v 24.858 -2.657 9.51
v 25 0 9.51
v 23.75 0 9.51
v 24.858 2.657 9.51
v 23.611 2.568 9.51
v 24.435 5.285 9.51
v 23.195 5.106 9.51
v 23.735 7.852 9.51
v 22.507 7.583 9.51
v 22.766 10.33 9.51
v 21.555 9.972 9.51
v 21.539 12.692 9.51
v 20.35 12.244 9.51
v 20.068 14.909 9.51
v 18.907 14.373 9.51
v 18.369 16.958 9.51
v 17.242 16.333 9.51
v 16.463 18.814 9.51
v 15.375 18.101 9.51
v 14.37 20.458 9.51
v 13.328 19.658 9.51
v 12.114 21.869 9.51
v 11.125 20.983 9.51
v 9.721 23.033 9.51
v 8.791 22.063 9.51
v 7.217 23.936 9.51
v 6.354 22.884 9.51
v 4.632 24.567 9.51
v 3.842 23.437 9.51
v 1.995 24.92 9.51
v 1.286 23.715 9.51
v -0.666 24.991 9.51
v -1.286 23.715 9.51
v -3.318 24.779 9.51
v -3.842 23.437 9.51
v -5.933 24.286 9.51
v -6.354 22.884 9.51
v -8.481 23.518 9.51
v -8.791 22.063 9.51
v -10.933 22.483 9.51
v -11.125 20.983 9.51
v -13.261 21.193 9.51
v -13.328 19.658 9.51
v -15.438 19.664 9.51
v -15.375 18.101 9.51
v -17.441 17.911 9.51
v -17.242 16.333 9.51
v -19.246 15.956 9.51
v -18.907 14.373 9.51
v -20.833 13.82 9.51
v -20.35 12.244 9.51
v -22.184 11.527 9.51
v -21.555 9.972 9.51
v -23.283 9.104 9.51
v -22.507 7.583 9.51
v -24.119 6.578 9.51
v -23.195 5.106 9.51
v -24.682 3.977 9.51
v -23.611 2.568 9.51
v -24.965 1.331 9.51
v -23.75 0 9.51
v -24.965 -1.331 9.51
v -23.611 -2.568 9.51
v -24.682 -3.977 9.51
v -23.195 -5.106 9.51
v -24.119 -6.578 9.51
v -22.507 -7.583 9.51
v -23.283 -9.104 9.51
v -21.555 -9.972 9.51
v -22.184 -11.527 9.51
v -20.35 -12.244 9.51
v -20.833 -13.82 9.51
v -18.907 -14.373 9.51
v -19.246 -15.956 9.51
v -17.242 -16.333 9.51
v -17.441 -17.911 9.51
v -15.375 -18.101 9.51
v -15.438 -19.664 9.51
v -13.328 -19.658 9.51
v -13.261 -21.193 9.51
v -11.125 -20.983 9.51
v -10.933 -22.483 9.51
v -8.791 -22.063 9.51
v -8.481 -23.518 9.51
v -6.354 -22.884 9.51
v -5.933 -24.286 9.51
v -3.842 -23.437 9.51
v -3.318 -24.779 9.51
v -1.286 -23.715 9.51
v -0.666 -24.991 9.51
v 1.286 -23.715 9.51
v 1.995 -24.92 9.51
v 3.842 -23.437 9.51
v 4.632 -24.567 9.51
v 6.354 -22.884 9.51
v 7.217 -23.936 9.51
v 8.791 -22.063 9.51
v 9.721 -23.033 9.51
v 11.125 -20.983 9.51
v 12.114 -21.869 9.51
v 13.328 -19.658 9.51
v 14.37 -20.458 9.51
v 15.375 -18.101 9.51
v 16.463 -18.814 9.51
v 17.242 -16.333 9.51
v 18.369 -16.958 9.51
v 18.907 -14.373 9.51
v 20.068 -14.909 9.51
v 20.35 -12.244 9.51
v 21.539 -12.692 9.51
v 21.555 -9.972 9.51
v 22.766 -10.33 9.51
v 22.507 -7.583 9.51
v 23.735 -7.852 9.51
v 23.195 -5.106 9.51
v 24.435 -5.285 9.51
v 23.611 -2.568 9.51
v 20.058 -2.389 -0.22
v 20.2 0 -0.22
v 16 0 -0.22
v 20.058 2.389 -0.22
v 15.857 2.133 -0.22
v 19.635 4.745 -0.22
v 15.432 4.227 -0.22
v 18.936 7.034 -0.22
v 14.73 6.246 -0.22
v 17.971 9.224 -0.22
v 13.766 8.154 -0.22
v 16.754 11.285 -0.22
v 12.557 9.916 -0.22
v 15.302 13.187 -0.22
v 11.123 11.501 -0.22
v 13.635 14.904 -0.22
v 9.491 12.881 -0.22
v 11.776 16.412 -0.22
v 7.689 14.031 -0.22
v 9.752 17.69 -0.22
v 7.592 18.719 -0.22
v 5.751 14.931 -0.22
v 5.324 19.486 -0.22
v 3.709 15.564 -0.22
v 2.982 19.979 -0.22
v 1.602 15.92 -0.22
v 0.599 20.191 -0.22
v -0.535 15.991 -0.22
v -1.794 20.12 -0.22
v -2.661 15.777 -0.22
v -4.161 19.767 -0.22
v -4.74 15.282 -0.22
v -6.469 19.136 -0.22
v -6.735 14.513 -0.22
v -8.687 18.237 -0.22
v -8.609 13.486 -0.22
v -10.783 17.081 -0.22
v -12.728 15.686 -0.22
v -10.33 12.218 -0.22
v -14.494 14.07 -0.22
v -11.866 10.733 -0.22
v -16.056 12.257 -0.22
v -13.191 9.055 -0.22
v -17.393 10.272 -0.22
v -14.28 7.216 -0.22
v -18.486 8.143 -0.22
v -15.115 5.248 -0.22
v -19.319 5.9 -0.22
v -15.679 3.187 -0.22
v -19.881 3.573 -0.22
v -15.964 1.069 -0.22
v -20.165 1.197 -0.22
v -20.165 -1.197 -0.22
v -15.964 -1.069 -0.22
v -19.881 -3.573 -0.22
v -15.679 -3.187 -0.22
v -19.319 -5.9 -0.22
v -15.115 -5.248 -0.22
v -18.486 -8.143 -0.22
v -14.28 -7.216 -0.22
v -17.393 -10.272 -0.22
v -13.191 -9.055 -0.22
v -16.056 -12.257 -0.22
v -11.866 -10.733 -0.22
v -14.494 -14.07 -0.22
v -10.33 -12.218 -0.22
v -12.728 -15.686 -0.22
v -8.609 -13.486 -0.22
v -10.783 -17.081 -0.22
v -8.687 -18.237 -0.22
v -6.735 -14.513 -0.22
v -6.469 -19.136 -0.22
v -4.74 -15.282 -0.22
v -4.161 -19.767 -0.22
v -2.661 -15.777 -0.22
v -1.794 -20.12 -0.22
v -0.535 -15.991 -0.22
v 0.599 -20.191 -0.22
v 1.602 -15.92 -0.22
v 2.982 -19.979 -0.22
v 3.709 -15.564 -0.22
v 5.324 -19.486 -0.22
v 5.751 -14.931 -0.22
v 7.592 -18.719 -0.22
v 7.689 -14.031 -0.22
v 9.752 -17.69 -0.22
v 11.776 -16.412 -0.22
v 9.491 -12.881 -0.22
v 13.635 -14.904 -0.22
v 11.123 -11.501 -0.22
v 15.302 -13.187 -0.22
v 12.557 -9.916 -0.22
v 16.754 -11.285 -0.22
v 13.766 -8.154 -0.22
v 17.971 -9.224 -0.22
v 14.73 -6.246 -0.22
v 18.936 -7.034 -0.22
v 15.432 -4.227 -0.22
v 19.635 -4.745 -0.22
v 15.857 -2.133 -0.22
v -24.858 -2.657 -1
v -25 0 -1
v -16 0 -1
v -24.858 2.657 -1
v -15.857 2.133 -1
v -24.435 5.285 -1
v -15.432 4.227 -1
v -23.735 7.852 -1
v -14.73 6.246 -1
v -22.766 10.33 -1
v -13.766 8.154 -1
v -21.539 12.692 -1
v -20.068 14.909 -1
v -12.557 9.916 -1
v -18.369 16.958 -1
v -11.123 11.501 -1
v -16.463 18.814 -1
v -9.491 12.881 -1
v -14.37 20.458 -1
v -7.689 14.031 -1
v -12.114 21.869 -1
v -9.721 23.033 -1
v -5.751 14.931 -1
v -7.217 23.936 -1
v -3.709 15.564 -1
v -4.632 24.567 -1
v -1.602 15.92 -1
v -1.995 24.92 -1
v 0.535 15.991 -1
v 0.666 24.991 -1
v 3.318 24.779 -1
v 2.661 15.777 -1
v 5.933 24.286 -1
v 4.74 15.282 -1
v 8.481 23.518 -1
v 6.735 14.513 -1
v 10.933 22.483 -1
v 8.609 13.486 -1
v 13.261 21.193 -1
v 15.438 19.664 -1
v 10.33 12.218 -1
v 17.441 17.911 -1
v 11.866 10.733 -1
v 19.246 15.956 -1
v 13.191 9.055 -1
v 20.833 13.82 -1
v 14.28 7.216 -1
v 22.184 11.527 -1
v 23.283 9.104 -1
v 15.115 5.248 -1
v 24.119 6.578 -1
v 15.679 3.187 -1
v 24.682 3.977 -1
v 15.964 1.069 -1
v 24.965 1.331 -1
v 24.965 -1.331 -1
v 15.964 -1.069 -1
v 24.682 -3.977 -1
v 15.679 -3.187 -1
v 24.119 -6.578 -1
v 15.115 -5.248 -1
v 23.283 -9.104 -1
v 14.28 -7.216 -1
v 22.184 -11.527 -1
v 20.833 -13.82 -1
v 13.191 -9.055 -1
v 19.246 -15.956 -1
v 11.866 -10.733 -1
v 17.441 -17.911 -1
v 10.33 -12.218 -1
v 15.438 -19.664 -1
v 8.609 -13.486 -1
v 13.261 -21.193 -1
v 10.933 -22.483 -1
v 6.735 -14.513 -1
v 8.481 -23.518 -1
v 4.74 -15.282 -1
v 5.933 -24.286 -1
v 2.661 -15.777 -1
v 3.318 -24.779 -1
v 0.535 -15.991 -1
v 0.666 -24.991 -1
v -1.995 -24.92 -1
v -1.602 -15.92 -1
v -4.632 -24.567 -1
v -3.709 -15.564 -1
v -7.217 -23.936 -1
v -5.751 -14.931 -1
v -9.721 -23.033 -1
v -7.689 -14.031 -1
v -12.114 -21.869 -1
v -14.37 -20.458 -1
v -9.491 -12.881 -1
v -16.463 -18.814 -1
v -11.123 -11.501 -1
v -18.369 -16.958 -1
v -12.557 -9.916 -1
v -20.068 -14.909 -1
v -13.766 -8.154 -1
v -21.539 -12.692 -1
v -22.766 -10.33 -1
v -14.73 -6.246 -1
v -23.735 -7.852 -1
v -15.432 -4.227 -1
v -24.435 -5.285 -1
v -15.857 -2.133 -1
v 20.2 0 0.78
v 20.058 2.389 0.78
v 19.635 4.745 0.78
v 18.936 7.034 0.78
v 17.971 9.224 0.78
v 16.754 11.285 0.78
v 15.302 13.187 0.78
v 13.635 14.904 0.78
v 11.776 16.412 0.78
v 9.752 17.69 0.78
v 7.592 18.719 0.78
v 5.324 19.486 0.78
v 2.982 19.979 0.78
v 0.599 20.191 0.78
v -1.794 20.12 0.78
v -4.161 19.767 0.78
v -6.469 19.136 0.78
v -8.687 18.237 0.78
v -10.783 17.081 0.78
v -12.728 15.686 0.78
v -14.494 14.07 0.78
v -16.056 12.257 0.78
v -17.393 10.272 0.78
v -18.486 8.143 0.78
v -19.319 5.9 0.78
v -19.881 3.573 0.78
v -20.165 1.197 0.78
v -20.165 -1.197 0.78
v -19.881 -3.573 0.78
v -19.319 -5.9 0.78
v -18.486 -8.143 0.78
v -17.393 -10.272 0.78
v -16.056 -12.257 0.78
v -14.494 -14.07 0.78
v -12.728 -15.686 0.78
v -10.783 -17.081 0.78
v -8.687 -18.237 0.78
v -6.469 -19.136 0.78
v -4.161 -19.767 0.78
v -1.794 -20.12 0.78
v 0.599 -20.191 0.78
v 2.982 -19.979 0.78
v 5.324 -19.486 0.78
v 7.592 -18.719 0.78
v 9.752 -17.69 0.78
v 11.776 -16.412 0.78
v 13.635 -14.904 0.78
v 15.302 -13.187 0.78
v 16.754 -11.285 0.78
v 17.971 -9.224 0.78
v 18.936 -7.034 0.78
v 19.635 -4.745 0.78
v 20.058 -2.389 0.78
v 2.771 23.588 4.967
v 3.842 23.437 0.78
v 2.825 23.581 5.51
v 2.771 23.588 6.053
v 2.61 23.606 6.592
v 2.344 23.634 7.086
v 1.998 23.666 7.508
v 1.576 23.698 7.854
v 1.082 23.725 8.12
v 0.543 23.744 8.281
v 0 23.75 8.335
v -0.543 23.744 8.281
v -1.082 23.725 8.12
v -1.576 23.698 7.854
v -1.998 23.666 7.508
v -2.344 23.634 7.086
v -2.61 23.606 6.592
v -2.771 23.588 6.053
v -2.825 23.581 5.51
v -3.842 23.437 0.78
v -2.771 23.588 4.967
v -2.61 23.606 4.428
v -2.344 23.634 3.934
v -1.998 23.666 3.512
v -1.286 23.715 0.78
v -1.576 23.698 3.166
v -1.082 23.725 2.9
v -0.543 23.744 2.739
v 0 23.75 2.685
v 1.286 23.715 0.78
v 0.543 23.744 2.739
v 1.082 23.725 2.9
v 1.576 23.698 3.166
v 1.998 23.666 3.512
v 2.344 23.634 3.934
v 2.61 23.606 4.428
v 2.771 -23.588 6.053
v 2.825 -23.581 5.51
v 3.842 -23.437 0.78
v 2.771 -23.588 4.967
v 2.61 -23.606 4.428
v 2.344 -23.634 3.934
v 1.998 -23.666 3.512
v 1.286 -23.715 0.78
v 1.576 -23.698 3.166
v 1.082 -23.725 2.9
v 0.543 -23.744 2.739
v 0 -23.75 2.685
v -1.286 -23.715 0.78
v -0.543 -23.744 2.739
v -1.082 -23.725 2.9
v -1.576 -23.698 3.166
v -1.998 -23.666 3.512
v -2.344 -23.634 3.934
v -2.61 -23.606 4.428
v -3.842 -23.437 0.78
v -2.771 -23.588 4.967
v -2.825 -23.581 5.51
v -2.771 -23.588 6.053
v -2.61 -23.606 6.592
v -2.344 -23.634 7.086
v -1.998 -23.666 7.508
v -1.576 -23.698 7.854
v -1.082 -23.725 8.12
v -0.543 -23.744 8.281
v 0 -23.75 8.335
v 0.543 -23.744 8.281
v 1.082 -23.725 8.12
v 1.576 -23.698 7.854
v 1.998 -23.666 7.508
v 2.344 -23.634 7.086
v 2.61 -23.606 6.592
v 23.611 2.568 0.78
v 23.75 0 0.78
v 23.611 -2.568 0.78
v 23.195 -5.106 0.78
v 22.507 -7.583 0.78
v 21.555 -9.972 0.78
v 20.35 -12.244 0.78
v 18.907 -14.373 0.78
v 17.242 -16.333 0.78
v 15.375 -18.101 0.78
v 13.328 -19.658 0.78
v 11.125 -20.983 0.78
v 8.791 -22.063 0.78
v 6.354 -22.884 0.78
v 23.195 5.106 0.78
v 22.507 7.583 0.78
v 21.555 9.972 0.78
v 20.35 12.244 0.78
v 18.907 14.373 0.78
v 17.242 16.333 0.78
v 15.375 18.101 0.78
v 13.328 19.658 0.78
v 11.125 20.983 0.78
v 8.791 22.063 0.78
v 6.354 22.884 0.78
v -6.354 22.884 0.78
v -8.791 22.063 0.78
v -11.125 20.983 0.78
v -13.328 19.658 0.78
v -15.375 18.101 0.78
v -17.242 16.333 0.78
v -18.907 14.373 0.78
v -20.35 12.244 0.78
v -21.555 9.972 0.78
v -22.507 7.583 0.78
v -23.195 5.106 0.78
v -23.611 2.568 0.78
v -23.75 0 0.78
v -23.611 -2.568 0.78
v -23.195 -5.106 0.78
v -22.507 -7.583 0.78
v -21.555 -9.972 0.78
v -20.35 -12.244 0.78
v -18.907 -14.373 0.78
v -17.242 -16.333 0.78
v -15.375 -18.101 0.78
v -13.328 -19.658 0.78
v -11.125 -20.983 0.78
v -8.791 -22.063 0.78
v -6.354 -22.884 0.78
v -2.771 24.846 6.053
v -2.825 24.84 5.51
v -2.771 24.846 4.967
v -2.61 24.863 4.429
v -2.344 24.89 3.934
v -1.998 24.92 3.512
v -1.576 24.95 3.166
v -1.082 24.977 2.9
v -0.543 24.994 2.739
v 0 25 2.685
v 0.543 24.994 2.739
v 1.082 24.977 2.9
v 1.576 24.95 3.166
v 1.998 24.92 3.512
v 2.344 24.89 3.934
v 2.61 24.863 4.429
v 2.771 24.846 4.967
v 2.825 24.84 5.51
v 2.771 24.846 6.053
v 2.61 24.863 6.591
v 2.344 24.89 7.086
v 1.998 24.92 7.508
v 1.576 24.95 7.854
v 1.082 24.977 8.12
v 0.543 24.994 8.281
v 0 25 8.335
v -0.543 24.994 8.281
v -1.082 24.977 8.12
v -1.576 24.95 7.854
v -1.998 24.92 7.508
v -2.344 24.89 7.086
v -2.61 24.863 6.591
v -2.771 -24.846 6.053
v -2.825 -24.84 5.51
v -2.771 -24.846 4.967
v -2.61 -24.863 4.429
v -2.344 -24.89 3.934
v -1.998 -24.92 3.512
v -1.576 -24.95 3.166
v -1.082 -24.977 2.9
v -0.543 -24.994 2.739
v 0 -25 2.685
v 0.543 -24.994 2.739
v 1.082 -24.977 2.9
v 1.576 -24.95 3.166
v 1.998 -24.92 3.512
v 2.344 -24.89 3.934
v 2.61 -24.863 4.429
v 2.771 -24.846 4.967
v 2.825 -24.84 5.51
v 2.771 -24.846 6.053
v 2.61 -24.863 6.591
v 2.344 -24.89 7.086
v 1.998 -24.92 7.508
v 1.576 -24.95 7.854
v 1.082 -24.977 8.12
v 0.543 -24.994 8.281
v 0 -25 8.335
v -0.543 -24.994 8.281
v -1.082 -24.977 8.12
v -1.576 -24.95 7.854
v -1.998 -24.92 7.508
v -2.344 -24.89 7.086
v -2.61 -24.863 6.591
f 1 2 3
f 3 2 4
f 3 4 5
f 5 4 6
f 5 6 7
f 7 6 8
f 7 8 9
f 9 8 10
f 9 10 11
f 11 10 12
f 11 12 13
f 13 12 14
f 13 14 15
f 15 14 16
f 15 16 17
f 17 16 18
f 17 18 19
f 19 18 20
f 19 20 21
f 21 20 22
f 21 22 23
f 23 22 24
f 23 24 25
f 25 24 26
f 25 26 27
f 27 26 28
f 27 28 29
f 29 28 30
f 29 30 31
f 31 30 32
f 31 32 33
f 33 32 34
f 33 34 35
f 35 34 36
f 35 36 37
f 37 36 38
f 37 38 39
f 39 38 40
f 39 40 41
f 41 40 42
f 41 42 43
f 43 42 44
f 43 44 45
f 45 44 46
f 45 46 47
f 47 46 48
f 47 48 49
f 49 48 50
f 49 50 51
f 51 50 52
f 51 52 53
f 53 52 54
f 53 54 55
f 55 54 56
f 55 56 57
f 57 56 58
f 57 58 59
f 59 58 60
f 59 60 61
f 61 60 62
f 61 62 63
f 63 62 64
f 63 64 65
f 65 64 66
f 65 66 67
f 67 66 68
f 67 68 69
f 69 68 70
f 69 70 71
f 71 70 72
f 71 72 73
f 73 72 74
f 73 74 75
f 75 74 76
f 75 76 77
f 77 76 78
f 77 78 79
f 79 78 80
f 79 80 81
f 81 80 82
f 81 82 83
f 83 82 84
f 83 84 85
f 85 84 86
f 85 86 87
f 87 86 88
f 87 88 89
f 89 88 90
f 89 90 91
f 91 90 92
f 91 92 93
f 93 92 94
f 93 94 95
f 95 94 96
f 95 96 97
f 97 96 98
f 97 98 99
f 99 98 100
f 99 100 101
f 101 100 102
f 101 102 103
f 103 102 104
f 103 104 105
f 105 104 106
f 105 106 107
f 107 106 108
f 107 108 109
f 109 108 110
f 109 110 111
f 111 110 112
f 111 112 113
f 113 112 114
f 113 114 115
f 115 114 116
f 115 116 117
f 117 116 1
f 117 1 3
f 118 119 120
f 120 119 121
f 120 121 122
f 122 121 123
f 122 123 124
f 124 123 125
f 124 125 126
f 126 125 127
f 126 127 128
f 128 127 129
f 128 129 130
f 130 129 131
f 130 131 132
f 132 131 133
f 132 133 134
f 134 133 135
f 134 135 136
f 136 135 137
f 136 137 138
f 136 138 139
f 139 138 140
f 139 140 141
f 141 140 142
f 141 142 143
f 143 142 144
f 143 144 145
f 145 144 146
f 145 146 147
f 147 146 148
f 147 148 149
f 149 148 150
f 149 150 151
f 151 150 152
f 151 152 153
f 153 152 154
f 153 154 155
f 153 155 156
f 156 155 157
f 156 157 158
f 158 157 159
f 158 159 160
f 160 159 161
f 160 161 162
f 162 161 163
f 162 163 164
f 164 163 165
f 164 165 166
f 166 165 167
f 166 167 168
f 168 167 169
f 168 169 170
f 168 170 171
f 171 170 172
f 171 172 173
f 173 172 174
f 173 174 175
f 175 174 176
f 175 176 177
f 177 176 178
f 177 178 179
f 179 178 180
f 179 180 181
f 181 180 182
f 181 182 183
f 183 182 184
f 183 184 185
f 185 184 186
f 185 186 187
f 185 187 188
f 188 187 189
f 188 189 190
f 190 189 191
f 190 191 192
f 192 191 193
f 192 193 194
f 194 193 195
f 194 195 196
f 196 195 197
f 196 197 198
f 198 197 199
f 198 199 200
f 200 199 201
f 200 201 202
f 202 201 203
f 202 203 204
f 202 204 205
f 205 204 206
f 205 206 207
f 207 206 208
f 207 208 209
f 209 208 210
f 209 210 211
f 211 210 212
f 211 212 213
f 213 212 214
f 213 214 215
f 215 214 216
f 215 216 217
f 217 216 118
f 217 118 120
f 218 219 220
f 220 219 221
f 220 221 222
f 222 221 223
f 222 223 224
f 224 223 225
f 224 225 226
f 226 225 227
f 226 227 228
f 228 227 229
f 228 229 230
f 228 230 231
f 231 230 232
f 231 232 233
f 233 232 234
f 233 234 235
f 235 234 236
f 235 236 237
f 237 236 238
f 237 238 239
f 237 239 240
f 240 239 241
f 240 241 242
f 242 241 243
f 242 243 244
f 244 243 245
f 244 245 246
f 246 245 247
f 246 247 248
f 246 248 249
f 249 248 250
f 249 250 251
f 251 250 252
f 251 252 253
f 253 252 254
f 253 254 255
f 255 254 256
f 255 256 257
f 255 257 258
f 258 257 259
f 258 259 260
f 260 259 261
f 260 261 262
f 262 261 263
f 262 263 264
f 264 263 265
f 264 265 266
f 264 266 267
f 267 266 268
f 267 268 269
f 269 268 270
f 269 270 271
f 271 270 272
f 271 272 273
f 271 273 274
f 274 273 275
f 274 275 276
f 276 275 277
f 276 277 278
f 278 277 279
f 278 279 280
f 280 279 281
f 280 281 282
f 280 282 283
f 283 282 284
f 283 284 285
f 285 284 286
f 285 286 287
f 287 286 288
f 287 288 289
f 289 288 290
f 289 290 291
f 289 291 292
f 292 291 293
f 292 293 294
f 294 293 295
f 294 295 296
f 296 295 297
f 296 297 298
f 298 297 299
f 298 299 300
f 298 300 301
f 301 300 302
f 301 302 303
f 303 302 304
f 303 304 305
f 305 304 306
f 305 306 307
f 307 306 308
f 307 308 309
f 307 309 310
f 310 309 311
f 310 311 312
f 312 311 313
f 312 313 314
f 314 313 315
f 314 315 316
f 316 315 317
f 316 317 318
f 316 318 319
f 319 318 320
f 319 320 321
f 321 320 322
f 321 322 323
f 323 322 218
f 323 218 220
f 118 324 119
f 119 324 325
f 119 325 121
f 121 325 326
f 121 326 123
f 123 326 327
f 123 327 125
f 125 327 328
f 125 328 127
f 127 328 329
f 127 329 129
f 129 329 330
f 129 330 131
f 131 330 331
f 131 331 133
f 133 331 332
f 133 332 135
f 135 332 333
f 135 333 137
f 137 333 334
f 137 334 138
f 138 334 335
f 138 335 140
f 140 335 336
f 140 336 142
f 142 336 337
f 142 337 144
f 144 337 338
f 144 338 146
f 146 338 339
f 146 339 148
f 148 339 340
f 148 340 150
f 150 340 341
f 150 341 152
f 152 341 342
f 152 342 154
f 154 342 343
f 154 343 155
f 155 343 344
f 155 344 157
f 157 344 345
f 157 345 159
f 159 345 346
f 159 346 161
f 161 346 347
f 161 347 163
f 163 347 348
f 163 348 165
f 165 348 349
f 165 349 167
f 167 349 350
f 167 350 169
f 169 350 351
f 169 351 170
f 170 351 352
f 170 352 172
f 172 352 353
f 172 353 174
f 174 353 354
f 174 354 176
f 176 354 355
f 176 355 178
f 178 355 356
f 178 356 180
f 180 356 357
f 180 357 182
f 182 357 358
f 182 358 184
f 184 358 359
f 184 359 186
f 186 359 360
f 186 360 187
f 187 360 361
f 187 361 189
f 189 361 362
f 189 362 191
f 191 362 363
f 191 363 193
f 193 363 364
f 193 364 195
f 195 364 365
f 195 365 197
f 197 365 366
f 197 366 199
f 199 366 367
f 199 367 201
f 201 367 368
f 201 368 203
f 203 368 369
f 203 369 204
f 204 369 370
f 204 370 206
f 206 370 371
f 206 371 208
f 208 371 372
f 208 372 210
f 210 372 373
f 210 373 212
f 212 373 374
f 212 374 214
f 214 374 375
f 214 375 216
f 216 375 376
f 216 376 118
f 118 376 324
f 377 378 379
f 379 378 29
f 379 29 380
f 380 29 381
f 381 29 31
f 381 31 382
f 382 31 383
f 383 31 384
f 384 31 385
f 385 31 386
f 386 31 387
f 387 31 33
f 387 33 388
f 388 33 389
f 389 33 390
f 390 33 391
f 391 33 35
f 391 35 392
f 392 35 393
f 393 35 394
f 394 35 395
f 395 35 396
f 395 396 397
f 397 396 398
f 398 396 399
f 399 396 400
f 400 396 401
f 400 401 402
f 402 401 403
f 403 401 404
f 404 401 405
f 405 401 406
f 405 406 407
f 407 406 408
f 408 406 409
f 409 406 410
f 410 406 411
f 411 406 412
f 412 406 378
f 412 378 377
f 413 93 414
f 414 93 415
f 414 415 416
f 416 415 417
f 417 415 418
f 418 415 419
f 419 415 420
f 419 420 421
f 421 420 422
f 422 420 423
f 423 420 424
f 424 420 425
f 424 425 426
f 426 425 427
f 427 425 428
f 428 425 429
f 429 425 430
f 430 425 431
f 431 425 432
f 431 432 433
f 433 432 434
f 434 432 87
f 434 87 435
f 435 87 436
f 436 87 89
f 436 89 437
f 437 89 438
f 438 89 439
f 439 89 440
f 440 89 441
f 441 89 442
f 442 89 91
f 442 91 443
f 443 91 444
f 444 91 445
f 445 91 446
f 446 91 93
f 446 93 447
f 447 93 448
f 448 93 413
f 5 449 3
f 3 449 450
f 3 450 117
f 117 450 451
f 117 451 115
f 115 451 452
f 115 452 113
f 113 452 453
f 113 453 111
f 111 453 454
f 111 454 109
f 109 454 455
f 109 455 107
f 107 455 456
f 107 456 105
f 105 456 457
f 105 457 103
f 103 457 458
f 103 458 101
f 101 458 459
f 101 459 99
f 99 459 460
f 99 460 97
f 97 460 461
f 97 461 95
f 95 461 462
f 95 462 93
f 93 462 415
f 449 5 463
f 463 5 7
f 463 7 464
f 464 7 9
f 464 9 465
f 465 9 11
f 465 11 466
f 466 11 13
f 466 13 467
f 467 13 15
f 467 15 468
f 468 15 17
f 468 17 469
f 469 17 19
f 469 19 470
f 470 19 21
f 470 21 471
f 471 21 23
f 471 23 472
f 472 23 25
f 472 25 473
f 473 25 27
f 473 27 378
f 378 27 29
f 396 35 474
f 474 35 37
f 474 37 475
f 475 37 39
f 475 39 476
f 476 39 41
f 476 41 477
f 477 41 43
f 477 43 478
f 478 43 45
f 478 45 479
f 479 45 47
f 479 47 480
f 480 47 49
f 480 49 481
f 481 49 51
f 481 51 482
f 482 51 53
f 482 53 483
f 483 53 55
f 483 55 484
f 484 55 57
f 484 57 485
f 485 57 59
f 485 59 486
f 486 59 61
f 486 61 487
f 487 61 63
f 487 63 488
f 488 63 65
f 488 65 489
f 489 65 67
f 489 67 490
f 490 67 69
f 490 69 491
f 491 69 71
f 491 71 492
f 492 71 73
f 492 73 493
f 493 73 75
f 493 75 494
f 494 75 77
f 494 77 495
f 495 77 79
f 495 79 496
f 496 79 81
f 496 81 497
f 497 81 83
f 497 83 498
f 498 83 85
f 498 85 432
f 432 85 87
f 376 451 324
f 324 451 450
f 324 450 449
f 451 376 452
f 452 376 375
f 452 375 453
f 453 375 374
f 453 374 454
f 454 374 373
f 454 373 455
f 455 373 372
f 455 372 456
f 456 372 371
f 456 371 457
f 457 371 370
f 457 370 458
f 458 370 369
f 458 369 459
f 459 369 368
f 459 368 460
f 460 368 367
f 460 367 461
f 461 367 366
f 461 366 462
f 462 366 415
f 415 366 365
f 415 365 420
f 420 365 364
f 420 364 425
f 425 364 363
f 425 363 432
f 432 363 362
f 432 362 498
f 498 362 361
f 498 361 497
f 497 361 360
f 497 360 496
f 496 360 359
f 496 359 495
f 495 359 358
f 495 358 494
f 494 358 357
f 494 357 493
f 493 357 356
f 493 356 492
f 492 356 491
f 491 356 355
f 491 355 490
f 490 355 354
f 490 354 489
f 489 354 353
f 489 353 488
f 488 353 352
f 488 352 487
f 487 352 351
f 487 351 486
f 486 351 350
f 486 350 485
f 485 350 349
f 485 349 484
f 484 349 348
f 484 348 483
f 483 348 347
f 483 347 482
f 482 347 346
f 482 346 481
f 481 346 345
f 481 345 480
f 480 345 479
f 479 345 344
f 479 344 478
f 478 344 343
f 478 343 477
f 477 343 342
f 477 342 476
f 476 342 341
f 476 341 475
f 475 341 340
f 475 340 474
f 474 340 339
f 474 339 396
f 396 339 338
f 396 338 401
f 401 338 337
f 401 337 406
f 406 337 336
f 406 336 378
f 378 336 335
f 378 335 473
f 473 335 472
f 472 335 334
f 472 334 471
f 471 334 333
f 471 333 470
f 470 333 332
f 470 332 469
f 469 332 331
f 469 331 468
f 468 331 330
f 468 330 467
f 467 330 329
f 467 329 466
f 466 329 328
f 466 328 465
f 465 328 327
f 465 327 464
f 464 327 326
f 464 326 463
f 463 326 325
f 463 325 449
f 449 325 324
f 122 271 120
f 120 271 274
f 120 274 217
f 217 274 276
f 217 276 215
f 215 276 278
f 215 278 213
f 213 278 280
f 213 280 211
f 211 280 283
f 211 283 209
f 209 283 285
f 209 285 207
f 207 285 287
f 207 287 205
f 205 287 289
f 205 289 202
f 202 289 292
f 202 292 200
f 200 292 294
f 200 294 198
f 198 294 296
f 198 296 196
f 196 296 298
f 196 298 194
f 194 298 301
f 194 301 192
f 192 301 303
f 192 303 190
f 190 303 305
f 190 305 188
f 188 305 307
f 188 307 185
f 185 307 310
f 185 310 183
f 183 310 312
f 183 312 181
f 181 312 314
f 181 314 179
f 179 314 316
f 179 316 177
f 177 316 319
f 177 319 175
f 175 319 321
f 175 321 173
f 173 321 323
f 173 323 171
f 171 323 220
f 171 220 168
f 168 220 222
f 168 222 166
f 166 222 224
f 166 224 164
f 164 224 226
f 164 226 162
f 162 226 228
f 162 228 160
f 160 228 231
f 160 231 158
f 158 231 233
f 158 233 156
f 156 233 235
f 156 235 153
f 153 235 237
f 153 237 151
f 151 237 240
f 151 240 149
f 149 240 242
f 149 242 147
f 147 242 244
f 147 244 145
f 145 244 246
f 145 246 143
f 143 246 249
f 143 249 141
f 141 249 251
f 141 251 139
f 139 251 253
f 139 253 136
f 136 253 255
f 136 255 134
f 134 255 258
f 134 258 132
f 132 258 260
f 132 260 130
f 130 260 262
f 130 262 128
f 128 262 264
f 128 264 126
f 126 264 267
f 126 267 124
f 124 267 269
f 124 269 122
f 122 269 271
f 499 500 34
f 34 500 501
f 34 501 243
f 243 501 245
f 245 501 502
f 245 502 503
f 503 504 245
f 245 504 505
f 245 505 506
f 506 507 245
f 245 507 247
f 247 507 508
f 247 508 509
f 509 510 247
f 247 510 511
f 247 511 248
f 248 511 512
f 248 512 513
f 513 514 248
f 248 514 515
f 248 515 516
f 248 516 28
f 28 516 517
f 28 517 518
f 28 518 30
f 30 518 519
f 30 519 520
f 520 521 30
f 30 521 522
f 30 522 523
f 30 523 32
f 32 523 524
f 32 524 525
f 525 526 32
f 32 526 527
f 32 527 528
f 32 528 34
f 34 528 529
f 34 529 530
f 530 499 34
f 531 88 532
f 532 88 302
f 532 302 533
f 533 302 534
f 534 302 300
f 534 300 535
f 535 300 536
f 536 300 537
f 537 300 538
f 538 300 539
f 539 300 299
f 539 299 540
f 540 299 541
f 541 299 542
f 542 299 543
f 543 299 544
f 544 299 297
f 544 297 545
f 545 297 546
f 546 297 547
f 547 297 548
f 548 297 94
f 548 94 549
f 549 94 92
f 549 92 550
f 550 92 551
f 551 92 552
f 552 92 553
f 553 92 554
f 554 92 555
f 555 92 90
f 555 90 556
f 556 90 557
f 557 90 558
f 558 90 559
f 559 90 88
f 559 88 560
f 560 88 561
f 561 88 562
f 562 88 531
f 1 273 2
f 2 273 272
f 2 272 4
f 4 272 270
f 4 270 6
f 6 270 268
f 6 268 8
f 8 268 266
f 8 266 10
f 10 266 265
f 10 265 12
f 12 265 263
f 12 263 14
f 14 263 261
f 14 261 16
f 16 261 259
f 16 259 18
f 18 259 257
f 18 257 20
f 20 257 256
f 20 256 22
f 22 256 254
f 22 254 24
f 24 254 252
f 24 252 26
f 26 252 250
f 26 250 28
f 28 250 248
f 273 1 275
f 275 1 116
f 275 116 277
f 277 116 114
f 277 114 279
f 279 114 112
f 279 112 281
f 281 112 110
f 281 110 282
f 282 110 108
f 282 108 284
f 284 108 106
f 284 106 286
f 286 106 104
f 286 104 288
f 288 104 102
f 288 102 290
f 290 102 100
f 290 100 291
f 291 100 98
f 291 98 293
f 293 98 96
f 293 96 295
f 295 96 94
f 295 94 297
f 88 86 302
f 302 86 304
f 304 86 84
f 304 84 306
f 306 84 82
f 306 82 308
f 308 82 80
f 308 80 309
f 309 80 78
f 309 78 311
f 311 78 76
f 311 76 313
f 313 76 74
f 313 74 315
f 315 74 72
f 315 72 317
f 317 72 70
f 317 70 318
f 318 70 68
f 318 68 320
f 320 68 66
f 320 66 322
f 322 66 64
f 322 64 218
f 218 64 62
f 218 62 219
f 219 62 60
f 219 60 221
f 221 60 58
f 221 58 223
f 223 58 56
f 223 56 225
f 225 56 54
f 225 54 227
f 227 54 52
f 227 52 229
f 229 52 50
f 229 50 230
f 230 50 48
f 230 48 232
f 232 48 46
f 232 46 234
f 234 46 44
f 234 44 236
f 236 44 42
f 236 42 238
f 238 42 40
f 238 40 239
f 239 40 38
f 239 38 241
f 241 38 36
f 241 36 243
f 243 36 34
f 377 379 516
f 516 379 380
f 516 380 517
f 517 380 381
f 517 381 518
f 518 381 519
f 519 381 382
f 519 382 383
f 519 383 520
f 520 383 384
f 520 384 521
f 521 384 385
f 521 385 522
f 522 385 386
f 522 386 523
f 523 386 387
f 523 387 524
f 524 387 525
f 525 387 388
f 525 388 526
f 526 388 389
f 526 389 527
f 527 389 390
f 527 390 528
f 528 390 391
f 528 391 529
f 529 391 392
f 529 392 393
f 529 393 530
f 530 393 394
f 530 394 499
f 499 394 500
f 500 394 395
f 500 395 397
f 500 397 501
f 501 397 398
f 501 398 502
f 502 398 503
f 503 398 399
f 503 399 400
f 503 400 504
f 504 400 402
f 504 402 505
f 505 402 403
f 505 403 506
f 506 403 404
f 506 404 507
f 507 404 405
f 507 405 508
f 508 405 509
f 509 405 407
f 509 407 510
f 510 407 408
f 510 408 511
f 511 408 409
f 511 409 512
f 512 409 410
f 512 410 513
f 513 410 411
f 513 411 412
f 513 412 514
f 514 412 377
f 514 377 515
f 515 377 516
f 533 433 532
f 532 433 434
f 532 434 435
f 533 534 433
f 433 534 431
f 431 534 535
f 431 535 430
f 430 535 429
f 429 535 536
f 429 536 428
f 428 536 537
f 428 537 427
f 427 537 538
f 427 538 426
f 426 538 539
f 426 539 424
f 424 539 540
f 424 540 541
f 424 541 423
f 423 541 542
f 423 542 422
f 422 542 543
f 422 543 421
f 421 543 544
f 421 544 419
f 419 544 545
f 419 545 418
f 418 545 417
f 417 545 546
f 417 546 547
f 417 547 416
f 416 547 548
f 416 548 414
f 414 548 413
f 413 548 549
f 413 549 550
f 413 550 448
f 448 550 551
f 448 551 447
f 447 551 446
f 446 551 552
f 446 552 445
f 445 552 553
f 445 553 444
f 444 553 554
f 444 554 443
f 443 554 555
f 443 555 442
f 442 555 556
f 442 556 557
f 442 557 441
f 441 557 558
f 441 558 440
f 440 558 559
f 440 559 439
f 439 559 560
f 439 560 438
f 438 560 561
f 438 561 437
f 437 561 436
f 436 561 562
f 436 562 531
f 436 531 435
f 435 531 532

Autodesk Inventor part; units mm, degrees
ref_plane "YZ Plane" through (0, 0, 0) normal (1, 0, 0) x (0, 1, 0)
ref_plane "XY Plane" through (0, 0, 0) normal (0, 0, 1) x (1, 0, 0)
sketch "Sketch1" plane through (0, 0, 0) normal (0, 0, 1) x (1, 0, 0)
  circle A0 centre (0, 0) radius 25
  dimension "d0" = 50
extrude "Initial Cylinder" add sketch "Sketch1" along normal blind 4.78
sketch "Sketch2" plane through (0, 0, 4.78) normal (0, 0, 1) x (1, 0, 0)
  circle A0 centre (0, 0) radius 16
  dimension "d3" = 32
extrude "Through-hole" cut sketch "Sketch2" against normal blind 548
sketch "Sketch3" plane through (0, 0, 4.78) normal (0, 0, 1) x (1, 0, 0)
  circle A0 centre (0, 0) radius 23.75
  dimension "d6" = 47.5
extrude "snug ring fit" cut sketch "Sketch3" against normal blind 4
sketch "Sketch5" plane through (0, 0, 0) normal (0, 1, 0) x (-1, 0, 0)
  line L0 (25, 4.78) -> (-25, 4.78) projected
  line L1 (25, 0) -> (-25, 0) projected
  point P0 (0, 0)
  dimension "d16" = 4.78
sketch "Sketch6" plane through (0, 0, 0.78) normal (0, 0, 1) x (1, 0, 0)
  circle A0 centre (0, 0) radius 20.2
  dimension "d17" = 40.4
extrude "Extrusion5" cut sketch "Sketch6" against normal blind 0.5
sketch "Sketch7" plane through (0, 0, 0) normal (0, 0, -1) x (-1, 0, 0)
  circle A0 centre (0, 0) radius 16 projected
  circle A1 centre (0, 0) radius 25 projected
extrude "Extrusion6" add sketch "Sketch7" along normal blind 1
sketch "Sketch8" plane through (0, 0, 0.28) normal (0, 0, 1) x (1, 0, 0)
  circle A0 centre (0, 0) radius 16 projected
  circle A1 centre (0, 0) radius 20.2 projected
  circle A2 centre (0, 0) radius 17.75
  dimension "d26" = 35.5
extrude "Extrusion7" cut sketch "Sketch8" along normal mid plane 1 contours A0 | A1 | A2
sketch "Sketch9" plane through (0, 0, 4.78) normal (0, 0, 1) x (1, 0, 0)
  circle A0 centre (0, 0) radius 23.75 projected
  circle A1 centre (0, 0) radius 25 projected
extrude "Extrusion8" add sketch "Sketch9" along normal blind 0.35
sketch "Sketch10" plane through (0, 0, 5.13) normal (0, 0, 1) x (1, 0, 0)
  circle A0 centre (0, 0) radius 23.75 projected
  circle A1 centre (0, 0) radius 25 projected
  dimension "d30" = 1.25
extrude "Extrusion9" add sketch "Sketch10" along normal blind 4.38
sketch "Sketch4" plane through (0, 0, 0) normal (0, 1, 0) x (-1, 0, 0)
  line L0 (25, 4.78) -> (-25, 4.78) projected
  line L1 (0, 4.78) -> (0, 5.78)
  circle A0 centre (0, 5.78) radius 2.825
  point P0 (0, 0)
  dimension "d10" = 5.65
  dimension "d29" = 1
extrude "Extrusion4" [suppressed]
ref_plane "Work Plane1" through (0, 25, 0) normal (0, 1, 0) x (-1, 0, 0)
sketch "Sketch11" plane through (0, 25, 0) normal (0, 1, 0) x (-1, 0, 0)
  line L0 (16, -0.22) -> (-16, -0.22) projected
  line L1 (25, 9.51) -> (-25, 9.51) projected
  line L2 (-23.75, 9.51) -> (23.75, 9.51) projected
  line L3 (0, 9.51) -> (0, 5.51)
  circle A0 centre (0, 5.51) radius 2.825
  point P0 (0, 0)
  dimension "d32" = 9.73
  dimension "d33" = 4
  dimension "d34" = 5.65
extrude "Extrusion10" cut sketch "Sketch11" along normal mid plane 1000
properties part number "Diaphragm_lock"
